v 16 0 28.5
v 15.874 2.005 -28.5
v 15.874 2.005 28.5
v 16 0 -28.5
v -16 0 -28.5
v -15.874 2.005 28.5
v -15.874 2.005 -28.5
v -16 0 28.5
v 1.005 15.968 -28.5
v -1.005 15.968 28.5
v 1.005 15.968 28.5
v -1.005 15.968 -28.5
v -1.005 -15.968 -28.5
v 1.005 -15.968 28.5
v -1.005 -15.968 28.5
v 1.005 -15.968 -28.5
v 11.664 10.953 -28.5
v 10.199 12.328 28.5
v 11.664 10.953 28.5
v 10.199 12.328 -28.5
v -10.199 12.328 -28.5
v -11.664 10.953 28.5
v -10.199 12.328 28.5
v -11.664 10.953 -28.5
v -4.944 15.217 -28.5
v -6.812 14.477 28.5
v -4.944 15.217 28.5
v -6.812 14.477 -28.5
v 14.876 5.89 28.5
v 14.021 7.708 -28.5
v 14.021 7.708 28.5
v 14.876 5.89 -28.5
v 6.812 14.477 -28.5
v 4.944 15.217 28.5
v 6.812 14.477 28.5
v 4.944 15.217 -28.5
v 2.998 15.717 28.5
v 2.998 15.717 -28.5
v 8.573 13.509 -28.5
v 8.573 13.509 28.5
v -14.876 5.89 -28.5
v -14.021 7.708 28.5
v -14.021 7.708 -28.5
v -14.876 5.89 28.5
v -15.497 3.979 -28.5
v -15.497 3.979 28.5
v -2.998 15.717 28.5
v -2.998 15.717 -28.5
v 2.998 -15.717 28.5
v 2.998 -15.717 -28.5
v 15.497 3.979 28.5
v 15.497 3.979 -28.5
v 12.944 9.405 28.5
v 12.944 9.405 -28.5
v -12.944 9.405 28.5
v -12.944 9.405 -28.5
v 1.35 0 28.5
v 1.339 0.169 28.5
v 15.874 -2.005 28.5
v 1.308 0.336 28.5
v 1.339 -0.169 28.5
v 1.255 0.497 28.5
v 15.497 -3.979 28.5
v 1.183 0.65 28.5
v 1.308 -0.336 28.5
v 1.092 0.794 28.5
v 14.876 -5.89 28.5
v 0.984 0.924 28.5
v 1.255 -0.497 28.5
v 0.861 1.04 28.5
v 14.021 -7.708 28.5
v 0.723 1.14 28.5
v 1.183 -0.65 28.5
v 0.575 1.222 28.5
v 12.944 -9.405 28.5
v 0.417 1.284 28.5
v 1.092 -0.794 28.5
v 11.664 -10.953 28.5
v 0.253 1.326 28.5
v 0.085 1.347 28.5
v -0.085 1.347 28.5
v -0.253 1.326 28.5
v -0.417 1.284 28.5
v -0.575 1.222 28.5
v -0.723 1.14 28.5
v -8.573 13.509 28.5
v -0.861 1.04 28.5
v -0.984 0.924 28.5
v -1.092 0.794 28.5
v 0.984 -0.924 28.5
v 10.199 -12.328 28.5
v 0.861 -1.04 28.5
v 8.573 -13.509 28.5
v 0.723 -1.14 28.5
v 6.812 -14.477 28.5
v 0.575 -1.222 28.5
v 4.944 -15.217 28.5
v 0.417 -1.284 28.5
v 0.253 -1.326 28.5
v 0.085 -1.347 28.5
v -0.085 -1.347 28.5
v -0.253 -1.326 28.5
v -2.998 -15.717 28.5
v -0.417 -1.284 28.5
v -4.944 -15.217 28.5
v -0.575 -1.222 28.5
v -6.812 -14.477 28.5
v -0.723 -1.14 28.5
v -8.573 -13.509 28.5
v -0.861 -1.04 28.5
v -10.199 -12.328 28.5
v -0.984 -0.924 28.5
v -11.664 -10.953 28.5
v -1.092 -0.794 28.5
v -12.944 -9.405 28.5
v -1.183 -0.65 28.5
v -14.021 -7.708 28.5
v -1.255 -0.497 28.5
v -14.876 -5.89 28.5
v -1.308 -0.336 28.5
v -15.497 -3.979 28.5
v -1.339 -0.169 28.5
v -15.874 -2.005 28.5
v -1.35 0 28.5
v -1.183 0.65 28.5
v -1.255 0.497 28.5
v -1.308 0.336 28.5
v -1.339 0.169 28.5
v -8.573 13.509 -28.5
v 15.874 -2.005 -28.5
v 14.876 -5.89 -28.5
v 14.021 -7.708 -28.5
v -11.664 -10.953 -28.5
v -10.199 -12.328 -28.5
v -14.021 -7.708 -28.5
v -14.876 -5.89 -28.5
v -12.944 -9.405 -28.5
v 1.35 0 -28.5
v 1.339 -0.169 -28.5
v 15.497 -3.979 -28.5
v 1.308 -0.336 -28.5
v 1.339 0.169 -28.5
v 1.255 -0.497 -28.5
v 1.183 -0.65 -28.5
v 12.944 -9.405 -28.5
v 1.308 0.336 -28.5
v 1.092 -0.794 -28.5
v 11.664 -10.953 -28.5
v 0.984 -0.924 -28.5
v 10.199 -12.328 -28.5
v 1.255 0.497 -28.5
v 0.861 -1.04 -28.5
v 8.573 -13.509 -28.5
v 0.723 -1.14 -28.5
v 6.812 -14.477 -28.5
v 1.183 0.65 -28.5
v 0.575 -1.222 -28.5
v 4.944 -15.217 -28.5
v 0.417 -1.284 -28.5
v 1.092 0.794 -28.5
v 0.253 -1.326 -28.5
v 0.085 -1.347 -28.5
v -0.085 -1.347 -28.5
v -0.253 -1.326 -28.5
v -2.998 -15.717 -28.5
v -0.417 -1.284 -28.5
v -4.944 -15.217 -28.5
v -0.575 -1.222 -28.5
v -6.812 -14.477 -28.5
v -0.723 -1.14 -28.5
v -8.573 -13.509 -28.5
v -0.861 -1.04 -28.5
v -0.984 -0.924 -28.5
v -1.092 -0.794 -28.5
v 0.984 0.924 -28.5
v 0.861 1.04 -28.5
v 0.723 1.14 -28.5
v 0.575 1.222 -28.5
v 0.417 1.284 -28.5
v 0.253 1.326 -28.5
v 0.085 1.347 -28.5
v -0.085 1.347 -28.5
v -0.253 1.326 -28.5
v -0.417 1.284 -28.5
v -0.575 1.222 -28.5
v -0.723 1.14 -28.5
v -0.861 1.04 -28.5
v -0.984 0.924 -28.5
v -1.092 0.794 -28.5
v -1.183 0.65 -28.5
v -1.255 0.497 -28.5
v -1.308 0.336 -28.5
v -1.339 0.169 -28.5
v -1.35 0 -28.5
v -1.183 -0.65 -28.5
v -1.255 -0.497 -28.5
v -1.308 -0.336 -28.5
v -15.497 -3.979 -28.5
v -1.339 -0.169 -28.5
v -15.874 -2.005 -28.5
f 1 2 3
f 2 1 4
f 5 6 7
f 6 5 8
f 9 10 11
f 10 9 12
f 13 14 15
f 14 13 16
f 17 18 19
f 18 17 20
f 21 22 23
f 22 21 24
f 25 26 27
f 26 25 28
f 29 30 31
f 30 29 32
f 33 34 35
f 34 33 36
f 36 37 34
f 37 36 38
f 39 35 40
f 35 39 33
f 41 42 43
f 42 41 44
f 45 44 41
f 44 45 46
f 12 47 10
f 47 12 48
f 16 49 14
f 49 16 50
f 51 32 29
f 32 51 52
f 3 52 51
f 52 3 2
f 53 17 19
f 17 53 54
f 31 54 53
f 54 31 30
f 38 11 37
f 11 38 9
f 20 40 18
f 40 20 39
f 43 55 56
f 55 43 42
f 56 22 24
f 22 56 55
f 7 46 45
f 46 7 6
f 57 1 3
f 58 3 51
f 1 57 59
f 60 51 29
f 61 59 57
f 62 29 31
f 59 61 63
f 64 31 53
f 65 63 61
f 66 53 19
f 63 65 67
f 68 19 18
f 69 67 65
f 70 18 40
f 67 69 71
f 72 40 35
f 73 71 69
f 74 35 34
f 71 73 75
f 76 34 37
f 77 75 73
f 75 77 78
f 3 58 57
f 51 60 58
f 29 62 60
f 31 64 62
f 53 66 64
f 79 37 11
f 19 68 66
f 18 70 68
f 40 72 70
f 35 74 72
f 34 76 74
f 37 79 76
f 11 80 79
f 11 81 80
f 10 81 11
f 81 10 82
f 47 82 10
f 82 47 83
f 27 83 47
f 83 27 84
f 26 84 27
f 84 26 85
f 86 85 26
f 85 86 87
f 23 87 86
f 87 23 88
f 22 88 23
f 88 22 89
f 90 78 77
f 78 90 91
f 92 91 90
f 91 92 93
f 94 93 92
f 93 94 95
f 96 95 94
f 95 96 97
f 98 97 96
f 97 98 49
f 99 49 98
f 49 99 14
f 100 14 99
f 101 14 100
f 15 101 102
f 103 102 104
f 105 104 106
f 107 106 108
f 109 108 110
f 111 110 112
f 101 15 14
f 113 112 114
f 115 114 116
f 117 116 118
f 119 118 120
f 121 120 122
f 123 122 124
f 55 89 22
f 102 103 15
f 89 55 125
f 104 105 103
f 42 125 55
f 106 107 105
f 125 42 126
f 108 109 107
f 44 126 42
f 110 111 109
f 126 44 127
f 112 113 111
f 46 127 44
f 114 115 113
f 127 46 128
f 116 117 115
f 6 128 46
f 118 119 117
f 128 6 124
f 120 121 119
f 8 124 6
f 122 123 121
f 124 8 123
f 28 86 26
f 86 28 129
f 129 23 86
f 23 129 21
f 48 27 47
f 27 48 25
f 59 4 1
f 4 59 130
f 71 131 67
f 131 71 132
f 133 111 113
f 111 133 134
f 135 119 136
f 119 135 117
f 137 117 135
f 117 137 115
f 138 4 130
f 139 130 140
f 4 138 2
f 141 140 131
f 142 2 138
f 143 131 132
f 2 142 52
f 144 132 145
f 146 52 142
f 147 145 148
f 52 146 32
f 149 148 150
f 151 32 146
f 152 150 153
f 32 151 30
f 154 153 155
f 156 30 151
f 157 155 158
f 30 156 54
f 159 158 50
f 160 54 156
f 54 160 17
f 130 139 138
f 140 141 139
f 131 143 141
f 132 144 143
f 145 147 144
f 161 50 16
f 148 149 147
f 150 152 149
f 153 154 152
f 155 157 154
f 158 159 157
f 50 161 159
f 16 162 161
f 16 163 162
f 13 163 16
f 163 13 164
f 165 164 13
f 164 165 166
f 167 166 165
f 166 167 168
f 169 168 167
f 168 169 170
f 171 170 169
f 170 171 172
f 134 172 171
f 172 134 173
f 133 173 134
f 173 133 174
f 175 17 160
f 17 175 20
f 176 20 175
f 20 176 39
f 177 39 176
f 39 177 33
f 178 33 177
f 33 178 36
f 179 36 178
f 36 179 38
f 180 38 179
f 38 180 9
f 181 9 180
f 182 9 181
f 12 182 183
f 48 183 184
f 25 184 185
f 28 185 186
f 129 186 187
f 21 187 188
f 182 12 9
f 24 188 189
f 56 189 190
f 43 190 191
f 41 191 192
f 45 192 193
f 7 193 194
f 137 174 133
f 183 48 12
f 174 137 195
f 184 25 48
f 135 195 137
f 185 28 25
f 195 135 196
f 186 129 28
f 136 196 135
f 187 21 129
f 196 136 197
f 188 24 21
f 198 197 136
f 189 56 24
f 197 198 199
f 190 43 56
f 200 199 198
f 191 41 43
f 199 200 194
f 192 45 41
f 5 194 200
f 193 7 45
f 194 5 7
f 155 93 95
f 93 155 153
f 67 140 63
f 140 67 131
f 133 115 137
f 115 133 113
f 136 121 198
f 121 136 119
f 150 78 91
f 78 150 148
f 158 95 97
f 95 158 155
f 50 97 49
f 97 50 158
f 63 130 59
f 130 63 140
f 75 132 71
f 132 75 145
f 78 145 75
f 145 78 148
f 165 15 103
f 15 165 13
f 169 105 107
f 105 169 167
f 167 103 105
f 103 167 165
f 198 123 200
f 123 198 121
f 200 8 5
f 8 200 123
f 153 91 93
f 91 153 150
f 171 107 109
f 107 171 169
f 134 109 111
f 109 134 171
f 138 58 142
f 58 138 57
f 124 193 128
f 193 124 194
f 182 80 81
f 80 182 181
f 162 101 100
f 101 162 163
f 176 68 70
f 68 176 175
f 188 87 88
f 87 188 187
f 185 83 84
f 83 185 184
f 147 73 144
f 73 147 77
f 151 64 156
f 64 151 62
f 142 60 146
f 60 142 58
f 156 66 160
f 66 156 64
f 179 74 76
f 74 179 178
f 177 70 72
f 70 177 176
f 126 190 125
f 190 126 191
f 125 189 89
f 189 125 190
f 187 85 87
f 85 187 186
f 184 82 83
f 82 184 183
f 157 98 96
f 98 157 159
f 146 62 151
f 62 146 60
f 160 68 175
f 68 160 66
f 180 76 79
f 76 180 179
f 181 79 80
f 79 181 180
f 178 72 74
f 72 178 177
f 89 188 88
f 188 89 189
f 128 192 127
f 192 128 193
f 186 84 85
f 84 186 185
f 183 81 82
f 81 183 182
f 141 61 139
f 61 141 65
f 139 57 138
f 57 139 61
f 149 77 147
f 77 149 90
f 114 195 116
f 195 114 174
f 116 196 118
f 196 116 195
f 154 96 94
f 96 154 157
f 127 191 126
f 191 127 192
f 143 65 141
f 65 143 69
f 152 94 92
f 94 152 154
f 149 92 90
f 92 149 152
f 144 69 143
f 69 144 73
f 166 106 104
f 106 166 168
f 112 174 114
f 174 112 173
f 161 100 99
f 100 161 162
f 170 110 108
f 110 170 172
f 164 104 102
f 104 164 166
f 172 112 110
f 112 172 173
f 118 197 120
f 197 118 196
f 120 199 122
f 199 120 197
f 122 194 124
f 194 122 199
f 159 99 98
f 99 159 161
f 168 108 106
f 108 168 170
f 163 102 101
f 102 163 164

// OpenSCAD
$fn = 50;


difference() {
	union() {
		translate(v = [0, 0, -28.5000000000]) {
			cylinder(h = 57, r = 16.0000000000);
		}
	}
	union() {
		translate(v = [0, 0, -100.0000000000]) {
			cylinder(h = 200, r = 1.3500000000);
		}
	}
}
